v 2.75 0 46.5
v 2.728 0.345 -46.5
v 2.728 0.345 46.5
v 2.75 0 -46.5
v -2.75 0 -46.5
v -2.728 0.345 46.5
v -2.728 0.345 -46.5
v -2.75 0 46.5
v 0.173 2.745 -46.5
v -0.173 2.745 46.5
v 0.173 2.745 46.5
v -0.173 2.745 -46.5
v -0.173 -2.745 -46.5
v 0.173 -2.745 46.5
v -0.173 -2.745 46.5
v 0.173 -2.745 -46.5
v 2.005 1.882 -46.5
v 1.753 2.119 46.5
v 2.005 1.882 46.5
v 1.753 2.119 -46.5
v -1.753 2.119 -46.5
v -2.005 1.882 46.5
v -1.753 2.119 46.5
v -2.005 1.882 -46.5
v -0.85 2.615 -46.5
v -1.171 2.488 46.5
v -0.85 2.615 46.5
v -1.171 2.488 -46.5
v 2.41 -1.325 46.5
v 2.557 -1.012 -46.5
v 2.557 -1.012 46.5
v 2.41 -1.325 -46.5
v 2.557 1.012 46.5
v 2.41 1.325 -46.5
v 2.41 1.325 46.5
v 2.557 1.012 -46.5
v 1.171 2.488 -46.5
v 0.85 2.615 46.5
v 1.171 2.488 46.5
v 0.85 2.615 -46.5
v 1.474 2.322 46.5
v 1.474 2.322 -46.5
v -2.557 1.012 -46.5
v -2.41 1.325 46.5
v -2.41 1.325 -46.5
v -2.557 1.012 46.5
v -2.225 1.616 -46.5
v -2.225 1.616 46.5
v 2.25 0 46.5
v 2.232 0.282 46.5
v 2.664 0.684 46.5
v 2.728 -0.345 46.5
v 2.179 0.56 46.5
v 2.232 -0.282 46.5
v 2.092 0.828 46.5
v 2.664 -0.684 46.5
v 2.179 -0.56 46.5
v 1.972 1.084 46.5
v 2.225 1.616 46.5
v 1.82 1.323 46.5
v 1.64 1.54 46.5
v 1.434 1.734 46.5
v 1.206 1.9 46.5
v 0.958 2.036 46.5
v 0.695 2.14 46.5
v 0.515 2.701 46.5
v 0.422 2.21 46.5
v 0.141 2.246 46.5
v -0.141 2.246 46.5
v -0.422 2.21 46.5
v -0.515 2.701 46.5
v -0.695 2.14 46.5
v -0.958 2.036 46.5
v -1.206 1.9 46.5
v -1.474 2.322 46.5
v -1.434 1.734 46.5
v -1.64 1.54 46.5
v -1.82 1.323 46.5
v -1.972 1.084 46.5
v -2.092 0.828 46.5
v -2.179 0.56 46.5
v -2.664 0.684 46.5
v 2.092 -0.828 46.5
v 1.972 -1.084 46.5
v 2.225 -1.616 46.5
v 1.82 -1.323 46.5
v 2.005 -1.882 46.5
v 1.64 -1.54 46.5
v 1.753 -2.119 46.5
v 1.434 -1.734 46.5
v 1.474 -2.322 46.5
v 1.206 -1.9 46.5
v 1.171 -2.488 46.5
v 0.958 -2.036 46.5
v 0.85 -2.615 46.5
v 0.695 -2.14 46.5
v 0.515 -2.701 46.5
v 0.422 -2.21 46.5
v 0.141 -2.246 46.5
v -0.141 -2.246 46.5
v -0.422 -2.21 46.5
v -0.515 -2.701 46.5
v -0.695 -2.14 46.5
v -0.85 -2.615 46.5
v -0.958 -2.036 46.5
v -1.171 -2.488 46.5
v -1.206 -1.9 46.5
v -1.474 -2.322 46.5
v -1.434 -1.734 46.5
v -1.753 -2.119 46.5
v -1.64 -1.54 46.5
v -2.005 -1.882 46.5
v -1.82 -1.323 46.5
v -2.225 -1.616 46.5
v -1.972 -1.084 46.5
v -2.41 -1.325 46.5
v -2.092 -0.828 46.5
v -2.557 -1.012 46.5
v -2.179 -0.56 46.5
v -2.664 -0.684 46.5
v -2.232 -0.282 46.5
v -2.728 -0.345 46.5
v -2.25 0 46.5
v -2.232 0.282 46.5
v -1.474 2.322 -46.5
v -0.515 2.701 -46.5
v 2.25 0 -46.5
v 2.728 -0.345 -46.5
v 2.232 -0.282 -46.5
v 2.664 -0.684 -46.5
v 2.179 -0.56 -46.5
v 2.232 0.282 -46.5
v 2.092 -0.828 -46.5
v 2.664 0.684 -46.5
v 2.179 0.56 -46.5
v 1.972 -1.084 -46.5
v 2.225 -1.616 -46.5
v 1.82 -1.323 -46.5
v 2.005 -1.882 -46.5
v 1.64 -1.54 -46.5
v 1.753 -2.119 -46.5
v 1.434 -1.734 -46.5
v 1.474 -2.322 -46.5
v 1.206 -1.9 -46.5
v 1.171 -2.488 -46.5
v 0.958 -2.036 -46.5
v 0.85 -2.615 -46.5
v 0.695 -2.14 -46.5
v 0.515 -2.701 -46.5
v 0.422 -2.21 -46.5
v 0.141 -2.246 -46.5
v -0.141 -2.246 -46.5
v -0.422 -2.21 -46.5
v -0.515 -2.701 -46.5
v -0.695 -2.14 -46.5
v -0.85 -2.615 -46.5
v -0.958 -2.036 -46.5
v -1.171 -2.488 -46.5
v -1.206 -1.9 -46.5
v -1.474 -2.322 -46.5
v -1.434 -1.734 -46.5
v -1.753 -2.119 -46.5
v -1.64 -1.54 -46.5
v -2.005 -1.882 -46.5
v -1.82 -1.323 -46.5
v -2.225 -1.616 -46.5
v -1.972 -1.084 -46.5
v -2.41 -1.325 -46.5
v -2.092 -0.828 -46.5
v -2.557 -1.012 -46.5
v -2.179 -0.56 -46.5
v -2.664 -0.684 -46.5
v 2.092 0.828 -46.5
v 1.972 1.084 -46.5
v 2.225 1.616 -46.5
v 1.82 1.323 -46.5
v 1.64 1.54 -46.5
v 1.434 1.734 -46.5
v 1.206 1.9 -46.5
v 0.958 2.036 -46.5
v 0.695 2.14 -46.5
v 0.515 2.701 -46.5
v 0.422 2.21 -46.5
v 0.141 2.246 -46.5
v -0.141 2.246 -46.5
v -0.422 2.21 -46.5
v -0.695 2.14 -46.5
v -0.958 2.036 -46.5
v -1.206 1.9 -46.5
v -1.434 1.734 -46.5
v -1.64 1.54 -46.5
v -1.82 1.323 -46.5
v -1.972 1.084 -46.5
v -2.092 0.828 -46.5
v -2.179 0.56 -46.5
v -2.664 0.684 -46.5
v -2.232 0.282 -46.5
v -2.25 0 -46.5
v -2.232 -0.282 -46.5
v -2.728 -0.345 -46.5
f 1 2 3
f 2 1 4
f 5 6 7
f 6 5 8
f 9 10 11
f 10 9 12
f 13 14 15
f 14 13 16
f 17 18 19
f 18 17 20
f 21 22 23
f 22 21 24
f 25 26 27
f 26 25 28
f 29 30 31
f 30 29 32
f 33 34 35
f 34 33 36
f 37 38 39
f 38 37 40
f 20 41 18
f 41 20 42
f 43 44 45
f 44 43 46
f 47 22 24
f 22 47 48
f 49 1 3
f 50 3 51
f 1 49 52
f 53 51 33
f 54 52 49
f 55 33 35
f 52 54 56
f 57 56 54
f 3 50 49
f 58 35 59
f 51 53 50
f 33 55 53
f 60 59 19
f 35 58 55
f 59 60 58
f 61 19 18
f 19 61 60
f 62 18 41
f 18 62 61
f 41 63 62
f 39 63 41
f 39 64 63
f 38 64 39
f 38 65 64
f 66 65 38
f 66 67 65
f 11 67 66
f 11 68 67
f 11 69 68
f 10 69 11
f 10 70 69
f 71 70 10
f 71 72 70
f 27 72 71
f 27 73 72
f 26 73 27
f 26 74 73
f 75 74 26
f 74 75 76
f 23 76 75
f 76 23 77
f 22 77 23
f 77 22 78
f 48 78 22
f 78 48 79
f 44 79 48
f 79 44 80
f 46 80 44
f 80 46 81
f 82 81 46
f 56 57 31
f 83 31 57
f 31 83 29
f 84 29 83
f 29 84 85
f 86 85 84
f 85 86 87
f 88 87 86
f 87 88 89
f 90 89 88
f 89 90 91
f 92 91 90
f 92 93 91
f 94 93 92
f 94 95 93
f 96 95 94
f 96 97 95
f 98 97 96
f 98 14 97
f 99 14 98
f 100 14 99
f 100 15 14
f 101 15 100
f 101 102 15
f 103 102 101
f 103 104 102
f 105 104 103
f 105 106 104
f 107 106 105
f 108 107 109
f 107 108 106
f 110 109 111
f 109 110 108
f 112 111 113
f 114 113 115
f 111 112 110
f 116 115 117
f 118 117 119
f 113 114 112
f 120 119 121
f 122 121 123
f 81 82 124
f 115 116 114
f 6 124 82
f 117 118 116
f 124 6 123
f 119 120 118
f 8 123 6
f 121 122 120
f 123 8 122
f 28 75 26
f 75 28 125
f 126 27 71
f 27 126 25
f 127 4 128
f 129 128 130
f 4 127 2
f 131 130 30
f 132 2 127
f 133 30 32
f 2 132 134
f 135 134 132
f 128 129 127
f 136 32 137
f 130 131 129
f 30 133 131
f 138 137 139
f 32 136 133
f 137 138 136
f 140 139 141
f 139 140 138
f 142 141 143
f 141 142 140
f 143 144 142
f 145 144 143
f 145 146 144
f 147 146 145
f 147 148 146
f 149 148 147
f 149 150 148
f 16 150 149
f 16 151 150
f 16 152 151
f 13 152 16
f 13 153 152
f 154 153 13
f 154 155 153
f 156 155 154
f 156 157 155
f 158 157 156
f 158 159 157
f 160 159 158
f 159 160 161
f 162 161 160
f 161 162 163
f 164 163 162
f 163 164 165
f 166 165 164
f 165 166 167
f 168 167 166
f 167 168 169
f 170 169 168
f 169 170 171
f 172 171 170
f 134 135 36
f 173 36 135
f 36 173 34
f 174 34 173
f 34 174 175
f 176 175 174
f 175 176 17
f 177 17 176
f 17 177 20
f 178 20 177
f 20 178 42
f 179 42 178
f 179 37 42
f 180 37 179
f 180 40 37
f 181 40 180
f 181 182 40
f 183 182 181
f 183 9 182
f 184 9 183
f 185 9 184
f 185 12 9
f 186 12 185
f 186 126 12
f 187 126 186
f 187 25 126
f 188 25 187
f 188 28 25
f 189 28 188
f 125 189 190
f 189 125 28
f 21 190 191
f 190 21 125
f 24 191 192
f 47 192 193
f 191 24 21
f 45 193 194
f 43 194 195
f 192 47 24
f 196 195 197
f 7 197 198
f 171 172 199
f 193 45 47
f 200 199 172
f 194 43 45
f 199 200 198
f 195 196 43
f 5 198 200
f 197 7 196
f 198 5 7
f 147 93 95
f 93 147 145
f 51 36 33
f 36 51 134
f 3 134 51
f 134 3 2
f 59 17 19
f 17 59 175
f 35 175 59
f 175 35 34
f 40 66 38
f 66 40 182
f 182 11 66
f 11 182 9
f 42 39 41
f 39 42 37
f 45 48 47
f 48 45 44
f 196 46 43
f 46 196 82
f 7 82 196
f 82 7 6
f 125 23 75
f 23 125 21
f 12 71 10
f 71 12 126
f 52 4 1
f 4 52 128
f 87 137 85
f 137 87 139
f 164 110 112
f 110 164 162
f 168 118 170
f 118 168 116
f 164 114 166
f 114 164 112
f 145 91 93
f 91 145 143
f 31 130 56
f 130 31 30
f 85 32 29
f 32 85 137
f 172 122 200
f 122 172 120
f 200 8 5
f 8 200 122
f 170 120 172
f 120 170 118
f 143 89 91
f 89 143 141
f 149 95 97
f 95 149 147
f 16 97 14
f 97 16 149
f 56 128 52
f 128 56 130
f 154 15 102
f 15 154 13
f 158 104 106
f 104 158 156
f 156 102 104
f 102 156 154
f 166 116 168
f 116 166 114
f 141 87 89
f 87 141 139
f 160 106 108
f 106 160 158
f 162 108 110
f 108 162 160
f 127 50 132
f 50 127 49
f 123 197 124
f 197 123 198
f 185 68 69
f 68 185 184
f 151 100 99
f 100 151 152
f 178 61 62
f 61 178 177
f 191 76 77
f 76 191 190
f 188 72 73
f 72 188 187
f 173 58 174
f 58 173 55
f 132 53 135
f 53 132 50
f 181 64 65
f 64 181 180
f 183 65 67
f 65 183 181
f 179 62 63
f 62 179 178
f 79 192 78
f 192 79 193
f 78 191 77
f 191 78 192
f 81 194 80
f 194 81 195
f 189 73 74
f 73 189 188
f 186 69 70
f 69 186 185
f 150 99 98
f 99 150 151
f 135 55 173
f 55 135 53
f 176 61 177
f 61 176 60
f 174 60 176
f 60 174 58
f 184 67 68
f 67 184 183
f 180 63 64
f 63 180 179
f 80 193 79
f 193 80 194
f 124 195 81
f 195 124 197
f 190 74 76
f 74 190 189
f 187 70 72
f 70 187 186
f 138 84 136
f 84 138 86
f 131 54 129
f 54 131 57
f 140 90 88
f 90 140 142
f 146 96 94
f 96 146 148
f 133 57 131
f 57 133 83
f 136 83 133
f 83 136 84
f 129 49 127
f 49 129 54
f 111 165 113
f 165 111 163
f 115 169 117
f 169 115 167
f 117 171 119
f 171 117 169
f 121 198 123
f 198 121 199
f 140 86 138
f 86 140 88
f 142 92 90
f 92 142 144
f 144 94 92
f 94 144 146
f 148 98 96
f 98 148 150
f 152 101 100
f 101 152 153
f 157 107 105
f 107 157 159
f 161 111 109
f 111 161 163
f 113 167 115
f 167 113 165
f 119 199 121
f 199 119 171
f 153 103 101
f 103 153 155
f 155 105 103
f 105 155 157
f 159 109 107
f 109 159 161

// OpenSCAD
$fn = 50;


difference() {
	union() {
		translate(v = [0, 0, -46.5000000000]) {
			cylinder(h = 93, r = 2.7500000000);
		}
	}
	union() {
		translate(v = [0, 0, -100.0000000000]) {
			cylinder(h = 200, r = 2.2500000000);
		}
	}
}
